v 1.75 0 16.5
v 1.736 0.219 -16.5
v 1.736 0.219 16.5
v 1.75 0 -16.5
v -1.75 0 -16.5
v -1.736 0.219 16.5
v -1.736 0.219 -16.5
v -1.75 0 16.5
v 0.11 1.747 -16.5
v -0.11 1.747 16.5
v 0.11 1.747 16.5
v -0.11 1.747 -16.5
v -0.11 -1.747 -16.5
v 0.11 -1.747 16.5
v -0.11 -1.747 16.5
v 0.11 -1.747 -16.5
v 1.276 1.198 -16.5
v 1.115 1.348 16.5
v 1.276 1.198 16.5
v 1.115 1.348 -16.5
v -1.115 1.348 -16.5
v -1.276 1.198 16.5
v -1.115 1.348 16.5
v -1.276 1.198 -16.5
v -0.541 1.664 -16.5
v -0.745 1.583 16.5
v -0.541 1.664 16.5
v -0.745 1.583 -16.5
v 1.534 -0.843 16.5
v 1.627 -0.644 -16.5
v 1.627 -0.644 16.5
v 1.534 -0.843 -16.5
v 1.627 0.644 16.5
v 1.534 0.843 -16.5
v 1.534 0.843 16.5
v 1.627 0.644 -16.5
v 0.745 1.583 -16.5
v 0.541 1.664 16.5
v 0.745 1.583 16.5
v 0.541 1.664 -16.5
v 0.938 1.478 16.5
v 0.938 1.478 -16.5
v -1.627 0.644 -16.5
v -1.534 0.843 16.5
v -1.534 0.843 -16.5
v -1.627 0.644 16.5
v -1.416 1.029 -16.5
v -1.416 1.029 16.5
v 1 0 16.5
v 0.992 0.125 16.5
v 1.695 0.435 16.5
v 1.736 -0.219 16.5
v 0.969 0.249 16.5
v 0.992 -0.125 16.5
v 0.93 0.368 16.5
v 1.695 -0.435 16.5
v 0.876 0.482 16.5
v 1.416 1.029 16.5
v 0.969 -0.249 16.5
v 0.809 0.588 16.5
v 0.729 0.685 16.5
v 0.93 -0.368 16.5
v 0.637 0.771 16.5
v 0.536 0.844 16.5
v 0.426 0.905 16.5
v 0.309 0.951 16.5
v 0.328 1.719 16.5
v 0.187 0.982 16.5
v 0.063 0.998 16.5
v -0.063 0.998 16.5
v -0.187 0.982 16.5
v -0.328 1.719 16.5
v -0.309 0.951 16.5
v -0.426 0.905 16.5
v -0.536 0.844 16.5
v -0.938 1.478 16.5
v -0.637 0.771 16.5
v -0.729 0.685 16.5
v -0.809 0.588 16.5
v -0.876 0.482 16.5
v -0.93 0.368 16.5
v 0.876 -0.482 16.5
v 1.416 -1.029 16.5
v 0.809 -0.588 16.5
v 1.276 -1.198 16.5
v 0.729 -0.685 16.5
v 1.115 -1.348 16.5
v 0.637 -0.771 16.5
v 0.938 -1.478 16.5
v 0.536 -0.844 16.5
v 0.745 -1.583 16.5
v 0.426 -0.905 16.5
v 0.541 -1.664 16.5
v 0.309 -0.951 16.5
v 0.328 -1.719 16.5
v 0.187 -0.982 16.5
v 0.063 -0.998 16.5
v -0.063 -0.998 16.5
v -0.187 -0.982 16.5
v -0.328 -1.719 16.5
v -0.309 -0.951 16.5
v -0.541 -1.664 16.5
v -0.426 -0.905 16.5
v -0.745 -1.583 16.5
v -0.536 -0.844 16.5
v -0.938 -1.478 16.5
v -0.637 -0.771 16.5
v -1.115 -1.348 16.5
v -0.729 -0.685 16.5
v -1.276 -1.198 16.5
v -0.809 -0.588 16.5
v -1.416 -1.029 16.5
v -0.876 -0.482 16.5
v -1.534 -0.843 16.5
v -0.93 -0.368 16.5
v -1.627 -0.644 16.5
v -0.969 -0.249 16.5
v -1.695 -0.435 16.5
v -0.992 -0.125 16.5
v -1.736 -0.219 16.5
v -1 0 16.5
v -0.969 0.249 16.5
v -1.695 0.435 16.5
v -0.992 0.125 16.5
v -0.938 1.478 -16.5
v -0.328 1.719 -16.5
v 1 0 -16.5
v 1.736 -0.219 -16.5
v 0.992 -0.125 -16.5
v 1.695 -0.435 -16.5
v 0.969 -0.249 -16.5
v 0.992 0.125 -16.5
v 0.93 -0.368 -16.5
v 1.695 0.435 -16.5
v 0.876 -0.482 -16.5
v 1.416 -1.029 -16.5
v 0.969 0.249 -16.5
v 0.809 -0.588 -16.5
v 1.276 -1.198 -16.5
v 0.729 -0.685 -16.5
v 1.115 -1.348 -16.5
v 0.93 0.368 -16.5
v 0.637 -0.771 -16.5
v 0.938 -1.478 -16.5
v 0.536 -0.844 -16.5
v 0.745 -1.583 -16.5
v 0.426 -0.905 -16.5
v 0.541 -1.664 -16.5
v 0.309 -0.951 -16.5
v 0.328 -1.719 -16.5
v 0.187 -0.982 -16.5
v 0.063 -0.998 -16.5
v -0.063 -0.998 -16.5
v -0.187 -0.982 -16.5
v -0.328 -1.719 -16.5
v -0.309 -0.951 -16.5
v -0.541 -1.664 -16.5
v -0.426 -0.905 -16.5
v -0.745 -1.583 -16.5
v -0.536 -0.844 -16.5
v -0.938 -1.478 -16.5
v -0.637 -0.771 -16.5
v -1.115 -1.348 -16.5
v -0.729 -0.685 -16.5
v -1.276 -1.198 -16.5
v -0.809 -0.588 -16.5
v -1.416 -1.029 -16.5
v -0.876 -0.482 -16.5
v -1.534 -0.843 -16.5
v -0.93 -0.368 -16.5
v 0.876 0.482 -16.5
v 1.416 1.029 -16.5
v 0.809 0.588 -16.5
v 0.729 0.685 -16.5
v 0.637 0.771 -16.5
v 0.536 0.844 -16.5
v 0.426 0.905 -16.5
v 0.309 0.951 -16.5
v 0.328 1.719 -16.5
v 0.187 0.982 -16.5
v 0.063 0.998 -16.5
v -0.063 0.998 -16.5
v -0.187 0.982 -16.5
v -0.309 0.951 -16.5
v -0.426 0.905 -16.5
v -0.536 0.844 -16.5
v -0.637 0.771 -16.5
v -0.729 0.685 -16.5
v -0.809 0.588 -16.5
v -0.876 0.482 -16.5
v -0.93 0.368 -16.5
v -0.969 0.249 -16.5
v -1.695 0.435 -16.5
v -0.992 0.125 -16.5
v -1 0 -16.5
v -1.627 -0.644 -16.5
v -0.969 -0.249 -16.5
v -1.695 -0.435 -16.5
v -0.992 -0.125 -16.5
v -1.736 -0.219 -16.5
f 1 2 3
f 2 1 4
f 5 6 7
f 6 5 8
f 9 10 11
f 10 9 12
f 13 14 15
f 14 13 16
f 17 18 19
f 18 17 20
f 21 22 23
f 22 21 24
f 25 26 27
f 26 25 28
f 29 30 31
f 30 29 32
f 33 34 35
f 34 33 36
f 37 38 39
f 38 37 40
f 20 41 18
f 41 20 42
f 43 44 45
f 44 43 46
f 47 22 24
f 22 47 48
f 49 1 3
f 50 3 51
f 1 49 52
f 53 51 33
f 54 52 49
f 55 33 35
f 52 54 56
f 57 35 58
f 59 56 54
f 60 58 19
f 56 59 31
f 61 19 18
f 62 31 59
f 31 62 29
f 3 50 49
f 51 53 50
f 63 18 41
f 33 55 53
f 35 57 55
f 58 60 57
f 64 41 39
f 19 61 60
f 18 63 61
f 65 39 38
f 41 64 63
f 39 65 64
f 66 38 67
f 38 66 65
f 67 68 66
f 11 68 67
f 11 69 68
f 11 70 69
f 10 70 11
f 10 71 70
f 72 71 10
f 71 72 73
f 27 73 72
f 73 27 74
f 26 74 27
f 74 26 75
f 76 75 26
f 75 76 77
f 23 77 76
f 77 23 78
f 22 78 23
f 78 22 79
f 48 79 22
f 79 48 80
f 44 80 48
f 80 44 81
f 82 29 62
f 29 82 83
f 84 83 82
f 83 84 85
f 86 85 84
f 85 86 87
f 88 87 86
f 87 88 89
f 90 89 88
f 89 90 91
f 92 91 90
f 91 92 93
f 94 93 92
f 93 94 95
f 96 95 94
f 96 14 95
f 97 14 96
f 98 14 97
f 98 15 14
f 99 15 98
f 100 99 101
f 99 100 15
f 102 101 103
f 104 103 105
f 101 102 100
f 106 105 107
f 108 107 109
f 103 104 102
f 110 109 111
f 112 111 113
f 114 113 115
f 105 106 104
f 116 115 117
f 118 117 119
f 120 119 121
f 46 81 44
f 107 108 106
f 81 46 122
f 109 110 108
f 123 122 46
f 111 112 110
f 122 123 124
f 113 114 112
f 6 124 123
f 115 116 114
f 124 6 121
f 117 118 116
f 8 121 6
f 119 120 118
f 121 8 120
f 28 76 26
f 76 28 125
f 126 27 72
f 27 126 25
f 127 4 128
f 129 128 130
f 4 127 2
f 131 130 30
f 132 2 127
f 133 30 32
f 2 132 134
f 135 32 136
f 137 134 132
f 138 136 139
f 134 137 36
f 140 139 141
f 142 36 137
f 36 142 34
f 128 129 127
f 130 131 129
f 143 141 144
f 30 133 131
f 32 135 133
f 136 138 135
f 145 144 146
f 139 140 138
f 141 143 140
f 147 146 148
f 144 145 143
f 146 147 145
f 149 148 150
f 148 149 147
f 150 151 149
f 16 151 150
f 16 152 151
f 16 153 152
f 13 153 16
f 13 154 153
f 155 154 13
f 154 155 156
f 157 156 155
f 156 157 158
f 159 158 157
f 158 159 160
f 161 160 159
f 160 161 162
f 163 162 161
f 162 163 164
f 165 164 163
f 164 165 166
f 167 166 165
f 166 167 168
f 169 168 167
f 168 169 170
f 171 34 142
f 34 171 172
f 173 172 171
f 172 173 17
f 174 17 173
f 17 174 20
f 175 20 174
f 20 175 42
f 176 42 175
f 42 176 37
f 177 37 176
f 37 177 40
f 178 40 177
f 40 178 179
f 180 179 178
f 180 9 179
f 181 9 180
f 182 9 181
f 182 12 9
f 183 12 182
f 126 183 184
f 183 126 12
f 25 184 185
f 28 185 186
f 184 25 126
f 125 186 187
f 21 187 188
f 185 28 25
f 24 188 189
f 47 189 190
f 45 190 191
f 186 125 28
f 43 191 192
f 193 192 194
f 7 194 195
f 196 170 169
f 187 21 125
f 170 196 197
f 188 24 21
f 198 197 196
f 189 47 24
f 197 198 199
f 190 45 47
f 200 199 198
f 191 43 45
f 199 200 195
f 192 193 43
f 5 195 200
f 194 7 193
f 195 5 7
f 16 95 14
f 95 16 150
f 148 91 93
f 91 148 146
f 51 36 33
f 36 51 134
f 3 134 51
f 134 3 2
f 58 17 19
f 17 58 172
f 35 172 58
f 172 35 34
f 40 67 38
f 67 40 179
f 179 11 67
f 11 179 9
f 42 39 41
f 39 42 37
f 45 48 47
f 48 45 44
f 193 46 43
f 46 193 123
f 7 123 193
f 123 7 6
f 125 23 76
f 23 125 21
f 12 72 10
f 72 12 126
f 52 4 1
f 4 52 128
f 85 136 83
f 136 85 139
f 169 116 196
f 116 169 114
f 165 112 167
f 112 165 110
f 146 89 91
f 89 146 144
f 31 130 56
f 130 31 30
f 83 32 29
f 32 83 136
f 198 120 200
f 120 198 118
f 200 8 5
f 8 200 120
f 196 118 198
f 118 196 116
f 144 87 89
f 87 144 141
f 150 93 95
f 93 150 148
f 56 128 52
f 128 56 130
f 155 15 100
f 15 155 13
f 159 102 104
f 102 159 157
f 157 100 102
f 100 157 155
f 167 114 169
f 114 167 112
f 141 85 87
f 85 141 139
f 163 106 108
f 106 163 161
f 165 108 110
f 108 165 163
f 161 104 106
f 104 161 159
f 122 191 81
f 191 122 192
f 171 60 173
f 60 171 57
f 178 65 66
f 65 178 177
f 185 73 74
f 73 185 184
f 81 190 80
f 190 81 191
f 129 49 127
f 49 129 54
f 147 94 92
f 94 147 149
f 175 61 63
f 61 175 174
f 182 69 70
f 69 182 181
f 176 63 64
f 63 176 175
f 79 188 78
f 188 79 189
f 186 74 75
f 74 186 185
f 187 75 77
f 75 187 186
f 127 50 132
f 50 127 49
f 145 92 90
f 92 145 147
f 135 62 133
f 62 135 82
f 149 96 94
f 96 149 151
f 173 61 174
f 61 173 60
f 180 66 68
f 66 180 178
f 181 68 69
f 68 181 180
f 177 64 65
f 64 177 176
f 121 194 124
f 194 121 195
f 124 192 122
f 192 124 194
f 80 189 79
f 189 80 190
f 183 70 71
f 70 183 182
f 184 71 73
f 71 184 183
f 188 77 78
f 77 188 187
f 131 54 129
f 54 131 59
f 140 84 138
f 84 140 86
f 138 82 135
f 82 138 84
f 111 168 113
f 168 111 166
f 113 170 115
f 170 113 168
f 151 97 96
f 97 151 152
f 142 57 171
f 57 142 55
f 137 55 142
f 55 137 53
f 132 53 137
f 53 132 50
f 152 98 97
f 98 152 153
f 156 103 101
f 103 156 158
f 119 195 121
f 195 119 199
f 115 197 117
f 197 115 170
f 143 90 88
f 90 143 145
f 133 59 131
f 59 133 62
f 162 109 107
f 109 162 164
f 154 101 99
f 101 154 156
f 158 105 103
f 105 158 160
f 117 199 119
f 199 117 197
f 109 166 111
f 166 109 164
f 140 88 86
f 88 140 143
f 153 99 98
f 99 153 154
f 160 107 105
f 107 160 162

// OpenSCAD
$fn = 50;


difference() {
	union() {
		translate(v = [0, 0, -16.5000000000]) {
			cylinder(h = 33, r = 1.7500000000);
		}
	}
	union() {
		translate(v = [0, 0, -100.0000000000]) {
			cylinder(h = 200, r = 1.0000000000);
		}
	}
}
